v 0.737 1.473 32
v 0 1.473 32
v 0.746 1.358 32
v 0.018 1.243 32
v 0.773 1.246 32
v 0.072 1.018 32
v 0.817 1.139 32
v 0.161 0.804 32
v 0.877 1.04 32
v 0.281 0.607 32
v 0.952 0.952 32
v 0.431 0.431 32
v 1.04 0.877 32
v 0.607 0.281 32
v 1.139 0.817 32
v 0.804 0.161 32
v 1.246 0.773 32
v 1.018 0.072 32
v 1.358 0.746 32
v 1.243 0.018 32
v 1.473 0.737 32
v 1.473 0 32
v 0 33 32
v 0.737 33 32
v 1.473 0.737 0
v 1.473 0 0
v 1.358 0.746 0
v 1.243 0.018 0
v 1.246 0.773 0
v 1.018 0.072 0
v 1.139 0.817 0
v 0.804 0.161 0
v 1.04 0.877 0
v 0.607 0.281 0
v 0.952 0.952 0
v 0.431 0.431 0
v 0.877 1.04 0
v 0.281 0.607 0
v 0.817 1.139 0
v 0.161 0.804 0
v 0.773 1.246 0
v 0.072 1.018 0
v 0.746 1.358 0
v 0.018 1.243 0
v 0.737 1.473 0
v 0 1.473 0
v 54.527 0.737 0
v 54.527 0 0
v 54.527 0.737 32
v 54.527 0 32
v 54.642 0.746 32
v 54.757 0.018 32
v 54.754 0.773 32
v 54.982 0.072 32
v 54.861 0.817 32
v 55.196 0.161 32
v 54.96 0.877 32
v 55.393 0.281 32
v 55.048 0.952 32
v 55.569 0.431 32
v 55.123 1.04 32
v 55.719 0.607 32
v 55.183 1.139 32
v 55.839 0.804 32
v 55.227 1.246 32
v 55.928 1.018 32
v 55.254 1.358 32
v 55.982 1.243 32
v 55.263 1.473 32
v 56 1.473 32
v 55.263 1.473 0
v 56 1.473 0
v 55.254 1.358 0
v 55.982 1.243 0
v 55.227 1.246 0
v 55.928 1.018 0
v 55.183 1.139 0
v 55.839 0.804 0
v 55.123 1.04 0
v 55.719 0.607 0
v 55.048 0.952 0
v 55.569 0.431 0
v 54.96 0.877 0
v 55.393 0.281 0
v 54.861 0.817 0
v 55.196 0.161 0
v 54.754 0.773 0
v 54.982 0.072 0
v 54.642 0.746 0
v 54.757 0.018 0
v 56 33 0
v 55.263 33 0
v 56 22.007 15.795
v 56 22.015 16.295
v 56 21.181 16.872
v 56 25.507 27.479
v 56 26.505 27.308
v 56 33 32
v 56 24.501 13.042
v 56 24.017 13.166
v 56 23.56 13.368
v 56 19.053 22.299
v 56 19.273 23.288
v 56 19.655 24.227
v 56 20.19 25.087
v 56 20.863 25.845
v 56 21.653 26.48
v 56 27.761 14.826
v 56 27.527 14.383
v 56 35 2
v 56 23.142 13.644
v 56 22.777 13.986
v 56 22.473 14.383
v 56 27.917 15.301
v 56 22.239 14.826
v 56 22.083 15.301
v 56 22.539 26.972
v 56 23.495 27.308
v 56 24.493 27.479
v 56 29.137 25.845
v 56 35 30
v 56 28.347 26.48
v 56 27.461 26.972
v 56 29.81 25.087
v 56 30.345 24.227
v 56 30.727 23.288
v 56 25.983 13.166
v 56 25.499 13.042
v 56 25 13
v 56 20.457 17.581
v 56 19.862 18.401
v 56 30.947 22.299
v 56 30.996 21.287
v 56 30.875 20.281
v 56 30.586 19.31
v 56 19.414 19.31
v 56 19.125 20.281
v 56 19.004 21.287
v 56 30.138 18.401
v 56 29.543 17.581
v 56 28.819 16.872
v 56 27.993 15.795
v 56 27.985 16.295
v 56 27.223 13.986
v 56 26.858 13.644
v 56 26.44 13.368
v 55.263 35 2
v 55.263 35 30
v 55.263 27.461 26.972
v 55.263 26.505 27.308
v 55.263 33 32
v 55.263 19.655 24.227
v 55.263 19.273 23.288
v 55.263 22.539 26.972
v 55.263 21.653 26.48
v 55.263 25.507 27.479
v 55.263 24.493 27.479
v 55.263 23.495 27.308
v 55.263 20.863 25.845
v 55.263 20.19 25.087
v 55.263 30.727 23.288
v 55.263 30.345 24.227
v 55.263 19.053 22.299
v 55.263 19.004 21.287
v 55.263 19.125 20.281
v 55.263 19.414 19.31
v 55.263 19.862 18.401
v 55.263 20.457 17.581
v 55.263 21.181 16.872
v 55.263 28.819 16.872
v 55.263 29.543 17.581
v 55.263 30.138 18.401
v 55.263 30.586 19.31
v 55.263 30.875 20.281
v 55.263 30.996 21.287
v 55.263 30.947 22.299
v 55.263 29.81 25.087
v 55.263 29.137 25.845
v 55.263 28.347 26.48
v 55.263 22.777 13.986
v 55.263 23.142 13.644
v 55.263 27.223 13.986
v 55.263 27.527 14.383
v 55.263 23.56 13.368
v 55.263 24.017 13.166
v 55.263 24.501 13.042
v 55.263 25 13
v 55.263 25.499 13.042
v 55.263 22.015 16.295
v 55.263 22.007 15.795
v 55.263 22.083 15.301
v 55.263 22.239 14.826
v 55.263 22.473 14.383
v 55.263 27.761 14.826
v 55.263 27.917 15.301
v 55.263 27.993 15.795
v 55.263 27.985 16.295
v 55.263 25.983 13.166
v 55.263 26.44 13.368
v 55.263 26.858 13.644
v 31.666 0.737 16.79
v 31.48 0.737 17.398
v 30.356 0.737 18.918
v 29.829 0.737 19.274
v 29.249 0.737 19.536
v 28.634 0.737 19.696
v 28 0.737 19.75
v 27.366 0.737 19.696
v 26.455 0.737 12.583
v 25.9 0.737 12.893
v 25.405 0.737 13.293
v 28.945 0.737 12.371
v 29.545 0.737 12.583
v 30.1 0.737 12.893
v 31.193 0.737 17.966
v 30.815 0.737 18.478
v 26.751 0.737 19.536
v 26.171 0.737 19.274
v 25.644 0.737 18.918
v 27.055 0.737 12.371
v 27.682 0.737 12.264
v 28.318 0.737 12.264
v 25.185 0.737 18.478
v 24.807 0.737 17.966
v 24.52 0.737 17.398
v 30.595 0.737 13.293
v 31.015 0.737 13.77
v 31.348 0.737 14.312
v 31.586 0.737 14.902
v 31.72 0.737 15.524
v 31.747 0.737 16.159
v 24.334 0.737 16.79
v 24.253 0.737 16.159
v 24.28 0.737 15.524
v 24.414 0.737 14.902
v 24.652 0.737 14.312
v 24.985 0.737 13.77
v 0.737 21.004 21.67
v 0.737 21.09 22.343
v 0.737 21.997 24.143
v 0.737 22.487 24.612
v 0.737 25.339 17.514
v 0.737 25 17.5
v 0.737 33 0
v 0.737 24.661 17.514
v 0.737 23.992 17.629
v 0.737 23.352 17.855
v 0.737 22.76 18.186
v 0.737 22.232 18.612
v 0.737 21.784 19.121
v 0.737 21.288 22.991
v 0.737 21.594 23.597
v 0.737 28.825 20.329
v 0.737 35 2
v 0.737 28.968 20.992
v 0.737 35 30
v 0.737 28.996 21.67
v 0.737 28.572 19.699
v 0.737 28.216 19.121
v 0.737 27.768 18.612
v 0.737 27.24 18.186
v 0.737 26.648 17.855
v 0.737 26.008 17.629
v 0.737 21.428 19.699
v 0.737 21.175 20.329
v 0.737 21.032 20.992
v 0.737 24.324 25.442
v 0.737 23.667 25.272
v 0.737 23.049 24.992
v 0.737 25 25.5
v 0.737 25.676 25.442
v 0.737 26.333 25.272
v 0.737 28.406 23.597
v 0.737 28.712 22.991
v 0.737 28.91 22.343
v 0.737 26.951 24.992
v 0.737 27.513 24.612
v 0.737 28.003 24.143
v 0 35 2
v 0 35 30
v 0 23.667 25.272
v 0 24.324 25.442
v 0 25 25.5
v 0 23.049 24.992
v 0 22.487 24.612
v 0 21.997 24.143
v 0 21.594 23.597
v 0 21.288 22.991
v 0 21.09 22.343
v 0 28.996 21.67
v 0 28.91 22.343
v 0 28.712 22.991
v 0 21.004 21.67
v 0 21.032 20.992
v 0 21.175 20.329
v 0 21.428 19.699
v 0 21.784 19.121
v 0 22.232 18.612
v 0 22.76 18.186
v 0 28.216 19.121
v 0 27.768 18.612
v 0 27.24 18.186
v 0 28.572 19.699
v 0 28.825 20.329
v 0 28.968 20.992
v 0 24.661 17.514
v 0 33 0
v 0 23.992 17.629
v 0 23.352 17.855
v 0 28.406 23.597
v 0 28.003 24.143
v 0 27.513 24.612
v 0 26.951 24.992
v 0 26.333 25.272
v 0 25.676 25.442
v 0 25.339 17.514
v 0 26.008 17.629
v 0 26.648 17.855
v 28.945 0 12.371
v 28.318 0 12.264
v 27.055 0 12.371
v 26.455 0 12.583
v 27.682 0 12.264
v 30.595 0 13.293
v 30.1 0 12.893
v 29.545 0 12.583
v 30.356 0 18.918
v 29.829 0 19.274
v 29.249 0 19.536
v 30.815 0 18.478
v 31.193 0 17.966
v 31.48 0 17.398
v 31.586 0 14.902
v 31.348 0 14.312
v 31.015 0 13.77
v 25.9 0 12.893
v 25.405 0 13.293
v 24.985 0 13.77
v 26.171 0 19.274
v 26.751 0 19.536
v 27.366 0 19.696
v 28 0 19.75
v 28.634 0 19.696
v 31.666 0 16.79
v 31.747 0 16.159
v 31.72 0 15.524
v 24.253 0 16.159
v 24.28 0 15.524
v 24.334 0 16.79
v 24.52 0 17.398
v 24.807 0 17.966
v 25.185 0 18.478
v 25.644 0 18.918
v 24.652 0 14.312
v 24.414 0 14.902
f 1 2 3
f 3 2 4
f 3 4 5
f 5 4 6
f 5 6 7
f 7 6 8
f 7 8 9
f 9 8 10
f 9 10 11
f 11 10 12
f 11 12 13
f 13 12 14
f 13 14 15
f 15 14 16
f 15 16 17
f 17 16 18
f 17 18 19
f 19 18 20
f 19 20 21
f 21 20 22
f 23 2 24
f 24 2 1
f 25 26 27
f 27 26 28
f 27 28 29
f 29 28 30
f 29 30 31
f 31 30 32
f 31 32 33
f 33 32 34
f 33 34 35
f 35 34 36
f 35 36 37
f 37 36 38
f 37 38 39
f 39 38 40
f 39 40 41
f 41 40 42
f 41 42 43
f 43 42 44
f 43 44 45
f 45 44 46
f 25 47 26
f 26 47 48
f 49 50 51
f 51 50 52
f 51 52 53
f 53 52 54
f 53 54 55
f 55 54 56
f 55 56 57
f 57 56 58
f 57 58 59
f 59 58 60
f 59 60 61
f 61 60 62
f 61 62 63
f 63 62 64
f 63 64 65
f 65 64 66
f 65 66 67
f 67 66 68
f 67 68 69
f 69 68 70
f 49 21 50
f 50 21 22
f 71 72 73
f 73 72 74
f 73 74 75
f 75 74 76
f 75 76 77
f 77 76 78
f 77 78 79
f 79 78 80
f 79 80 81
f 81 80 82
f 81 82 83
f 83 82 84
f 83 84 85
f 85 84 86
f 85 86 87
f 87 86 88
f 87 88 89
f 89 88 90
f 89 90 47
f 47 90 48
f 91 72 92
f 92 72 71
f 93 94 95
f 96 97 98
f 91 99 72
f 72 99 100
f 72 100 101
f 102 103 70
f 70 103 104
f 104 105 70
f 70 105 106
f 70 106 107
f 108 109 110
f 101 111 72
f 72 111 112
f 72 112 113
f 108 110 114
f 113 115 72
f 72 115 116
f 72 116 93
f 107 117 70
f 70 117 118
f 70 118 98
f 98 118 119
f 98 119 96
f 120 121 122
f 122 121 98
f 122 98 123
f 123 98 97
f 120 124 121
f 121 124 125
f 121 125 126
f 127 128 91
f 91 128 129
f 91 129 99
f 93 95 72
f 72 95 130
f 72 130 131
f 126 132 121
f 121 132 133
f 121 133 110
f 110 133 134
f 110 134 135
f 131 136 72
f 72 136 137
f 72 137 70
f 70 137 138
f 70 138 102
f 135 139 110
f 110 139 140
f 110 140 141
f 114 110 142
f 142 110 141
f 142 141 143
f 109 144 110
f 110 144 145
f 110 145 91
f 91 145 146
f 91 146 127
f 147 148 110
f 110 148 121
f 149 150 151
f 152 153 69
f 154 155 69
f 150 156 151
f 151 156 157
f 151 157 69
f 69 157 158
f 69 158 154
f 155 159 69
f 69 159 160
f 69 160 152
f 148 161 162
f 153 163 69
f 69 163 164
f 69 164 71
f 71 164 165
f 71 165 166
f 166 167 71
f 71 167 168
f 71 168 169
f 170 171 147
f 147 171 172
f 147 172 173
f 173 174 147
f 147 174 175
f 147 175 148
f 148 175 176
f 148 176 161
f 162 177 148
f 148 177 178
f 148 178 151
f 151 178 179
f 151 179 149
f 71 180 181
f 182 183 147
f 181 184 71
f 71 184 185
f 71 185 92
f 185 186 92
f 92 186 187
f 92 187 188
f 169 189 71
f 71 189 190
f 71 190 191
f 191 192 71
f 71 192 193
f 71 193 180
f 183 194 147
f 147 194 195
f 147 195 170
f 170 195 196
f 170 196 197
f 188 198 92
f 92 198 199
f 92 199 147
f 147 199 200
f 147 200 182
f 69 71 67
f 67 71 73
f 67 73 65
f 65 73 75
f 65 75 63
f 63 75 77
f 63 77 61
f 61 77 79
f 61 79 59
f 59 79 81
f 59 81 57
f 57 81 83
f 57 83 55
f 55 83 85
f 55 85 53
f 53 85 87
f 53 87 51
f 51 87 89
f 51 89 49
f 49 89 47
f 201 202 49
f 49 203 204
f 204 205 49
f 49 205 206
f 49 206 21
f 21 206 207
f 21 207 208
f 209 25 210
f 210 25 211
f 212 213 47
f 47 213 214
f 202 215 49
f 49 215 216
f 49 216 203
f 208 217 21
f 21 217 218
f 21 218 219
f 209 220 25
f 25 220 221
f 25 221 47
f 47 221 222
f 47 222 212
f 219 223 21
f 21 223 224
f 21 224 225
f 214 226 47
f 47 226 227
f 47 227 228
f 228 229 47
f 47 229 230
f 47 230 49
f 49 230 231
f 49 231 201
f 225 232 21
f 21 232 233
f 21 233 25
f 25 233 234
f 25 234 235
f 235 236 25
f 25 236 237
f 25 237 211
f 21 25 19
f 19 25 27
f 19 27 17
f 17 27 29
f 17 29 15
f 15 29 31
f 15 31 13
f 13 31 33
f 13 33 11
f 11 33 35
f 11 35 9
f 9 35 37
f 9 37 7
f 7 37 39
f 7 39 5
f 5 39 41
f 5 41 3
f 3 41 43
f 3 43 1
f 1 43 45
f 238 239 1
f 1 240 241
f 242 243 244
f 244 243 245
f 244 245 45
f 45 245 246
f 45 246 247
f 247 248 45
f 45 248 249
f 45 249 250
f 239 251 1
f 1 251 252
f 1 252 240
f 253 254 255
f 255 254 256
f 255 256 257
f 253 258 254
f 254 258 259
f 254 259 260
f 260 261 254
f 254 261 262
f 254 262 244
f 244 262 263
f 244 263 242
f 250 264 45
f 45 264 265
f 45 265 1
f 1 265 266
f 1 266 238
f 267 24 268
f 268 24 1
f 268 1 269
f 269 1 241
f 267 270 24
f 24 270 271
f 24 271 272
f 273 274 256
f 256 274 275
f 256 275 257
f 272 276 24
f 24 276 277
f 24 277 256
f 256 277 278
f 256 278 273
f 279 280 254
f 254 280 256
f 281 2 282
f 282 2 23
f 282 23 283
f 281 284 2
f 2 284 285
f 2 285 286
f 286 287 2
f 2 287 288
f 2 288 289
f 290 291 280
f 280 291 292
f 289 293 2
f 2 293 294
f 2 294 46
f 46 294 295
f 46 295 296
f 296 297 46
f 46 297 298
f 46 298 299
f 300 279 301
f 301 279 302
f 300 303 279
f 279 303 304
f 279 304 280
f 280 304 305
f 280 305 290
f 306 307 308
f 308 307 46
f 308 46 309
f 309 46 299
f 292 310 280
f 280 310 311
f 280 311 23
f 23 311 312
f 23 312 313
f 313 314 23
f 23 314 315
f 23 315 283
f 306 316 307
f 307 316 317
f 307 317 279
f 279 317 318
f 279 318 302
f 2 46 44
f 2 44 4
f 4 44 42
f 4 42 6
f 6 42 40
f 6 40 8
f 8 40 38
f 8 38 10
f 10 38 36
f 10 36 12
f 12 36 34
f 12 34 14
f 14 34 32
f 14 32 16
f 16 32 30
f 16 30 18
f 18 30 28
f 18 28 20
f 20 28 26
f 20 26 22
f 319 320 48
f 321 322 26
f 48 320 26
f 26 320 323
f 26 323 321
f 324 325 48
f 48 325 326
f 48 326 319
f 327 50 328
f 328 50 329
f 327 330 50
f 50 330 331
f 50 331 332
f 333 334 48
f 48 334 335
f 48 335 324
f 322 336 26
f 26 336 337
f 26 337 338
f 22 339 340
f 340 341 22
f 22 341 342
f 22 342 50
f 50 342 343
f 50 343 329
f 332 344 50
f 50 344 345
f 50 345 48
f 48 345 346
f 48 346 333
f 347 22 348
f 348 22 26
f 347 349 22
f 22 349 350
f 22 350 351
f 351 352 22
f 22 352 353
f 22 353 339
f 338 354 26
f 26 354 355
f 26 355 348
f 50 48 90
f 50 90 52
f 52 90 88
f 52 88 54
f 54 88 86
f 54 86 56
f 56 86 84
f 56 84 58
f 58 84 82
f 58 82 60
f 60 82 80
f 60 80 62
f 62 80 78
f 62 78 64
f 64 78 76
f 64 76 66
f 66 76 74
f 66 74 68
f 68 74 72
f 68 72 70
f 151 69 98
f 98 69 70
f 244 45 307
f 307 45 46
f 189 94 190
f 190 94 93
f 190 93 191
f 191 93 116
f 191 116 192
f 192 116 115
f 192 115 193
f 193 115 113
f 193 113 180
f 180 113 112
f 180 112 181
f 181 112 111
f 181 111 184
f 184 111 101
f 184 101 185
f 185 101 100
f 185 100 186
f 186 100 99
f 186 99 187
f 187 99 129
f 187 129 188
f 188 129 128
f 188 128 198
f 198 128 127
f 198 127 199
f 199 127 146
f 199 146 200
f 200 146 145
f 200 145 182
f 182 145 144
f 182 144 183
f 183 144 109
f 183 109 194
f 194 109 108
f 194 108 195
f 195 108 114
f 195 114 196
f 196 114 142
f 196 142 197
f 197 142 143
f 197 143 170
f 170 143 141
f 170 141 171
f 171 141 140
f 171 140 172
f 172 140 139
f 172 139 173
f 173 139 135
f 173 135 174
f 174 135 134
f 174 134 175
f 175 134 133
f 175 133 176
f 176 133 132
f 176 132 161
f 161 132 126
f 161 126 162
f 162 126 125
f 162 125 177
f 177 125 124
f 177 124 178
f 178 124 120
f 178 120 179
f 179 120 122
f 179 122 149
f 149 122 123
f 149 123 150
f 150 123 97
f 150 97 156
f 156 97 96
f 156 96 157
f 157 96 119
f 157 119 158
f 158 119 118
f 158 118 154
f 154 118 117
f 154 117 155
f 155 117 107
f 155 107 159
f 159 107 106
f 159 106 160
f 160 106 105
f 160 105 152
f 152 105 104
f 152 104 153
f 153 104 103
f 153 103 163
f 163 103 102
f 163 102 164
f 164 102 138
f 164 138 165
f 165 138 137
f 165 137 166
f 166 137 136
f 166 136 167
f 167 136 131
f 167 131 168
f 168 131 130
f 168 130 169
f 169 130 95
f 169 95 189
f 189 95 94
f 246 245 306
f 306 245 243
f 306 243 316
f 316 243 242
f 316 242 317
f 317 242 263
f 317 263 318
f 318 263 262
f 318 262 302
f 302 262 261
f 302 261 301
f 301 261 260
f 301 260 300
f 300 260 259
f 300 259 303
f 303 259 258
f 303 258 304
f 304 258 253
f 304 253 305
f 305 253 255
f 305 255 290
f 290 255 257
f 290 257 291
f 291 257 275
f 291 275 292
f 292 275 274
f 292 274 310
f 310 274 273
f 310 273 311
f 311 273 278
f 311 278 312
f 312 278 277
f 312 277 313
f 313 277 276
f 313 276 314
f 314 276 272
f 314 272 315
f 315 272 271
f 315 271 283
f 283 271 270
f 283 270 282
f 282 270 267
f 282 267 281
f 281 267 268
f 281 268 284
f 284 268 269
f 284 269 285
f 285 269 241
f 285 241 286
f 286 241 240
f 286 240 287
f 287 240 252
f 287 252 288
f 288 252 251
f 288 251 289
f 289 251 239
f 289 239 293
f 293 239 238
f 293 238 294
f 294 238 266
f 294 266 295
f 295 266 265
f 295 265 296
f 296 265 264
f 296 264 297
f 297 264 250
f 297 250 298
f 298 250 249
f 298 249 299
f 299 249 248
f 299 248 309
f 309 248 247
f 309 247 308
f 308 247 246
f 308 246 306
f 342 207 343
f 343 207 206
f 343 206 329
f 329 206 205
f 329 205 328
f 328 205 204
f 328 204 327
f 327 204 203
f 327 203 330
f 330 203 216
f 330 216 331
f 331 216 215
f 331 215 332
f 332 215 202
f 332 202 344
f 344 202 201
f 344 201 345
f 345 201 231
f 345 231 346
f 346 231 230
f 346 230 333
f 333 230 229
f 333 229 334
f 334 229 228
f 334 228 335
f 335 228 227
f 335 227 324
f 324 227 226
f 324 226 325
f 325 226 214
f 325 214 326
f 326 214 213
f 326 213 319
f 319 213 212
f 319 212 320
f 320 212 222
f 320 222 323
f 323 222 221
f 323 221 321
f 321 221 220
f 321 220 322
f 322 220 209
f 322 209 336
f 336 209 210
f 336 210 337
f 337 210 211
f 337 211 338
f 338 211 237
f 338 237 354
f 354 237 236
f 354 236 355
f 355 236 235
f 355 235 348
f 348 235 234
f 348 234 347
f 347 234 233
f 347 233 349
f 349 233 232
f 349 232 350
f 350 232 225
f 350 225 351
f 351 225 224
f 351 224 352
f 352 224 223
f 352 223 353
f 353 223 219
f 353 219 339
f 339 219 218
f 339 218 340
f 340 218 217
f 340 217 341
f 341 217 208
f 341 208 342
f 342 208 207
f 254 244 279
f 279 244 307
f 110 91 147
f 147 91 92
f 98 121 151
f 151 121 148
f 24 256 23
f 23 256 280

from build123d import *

# Parameters (mm, degrees)
BASE_FLANGE1_DEPTH = 32
CUT_EXTRUDE1_DEPTH = 10
SKETCH7_R          = 4
CUT_EXTRUDE2_DEPTH = 10
SKETCH8_R          = 3.75
CUT_EXTRUDE3_DEPTH = 10
CHAMFER1_SIZE      = 2


# Sheet-metal steps are written as plain solids
with BuildPart() as part:
    # Sketch1 → Base-Flange1 (new body)
    with BuildSketch(Plane.XY):
        with BuildLine():
            Line((56, 35), (56, 1.4732))
            ThreePointArc((56, 1.4732), (55.56850971, 0.43149029), (54.5268, 0))
            Line((54.5268, 0), (1.4732, 0))
            ThreePointArc((1.4732, 0), (0.43149029, 0.43149029), (0, 1.4732))
            Line((0, 1.4732), (0, 35))
            Line((0, 35), (0.7366, 35))
            Line((0.7366, 35), (0.7366, 1.4732))
            ThreePointArc((0.7366, 1.4732), (0.952345145, 0.952345145), (1.4732, 0.7366))
            Line((1.4732, 0.7366), (54.5268, 0.7366))
            ThreePointArc((54.5268, 0.7366), (55.047654855, 0.952345145), (55.2634, 1.4732))
            Line((55.2634, 1.4732), (55.2634, 35))
            Line((55.2634, 35), (56, 35))
        make_face()
    extrude(amount=BASE_FLANGE1_DEPTH)

    # Sketch6 → Cut-Extrude1 (cut)
    with BuildSketch(Plane(origin=(56, 0, 0), x_dir=(0, 0, -1), z_dir=(1, 0, 0))):
        with BuildLine():
            ThreePointArc((-16.295454545, 27.985415651), (-27.5, 25), (-16.295454545, 22.014584349))
            ThreePointArc((-16.295454545, 22.014584349), (-13, 25), (-16.295454545, 27.985415651))
        make_face()
    extrude(amount=-CUT_EXTRUDE1_DEPTH, mode=Mode.SUBTRACT)

    # Sketch7 → Cut-Extrude2 (cut)
    with BuildSketch(Plane.ZY):
        with Locations((21.5, 25)):
            Circle(SKETCH7_R)
    extrude(amount=-CUT_EXTRUDE2_DEPTH, mode=Mode.SUBTRACT)

    # Sketch8 → Cut-Extrude3 (cut)
    with BuildSketch(Plane(origin=(0, 0.7366, 0), x_dir=(1, 0, 0), z_dir=(0, 1, 0))):
        with Locations(Location((28, -16, 0), (0, 0, 270))):
            Circle(SKETCH8_R)
    extrude(amount=-CUT_EXTRUDE3_DEPTH, mode=Mode.SUBTRACT)

    # Chamfer1
    chamfer1_edges = [part.edges().sort_by_distance(p)[0] for p in [
        (0.3683, 35, 0),
        (55.6317, 35, 0),
        (0.3683, 35, 32),
        (55.6317, 35, 32),
    ]]
    chamfer(chamfer1_edges, length=CHAMFER1_SIZE)


solid = part.part
